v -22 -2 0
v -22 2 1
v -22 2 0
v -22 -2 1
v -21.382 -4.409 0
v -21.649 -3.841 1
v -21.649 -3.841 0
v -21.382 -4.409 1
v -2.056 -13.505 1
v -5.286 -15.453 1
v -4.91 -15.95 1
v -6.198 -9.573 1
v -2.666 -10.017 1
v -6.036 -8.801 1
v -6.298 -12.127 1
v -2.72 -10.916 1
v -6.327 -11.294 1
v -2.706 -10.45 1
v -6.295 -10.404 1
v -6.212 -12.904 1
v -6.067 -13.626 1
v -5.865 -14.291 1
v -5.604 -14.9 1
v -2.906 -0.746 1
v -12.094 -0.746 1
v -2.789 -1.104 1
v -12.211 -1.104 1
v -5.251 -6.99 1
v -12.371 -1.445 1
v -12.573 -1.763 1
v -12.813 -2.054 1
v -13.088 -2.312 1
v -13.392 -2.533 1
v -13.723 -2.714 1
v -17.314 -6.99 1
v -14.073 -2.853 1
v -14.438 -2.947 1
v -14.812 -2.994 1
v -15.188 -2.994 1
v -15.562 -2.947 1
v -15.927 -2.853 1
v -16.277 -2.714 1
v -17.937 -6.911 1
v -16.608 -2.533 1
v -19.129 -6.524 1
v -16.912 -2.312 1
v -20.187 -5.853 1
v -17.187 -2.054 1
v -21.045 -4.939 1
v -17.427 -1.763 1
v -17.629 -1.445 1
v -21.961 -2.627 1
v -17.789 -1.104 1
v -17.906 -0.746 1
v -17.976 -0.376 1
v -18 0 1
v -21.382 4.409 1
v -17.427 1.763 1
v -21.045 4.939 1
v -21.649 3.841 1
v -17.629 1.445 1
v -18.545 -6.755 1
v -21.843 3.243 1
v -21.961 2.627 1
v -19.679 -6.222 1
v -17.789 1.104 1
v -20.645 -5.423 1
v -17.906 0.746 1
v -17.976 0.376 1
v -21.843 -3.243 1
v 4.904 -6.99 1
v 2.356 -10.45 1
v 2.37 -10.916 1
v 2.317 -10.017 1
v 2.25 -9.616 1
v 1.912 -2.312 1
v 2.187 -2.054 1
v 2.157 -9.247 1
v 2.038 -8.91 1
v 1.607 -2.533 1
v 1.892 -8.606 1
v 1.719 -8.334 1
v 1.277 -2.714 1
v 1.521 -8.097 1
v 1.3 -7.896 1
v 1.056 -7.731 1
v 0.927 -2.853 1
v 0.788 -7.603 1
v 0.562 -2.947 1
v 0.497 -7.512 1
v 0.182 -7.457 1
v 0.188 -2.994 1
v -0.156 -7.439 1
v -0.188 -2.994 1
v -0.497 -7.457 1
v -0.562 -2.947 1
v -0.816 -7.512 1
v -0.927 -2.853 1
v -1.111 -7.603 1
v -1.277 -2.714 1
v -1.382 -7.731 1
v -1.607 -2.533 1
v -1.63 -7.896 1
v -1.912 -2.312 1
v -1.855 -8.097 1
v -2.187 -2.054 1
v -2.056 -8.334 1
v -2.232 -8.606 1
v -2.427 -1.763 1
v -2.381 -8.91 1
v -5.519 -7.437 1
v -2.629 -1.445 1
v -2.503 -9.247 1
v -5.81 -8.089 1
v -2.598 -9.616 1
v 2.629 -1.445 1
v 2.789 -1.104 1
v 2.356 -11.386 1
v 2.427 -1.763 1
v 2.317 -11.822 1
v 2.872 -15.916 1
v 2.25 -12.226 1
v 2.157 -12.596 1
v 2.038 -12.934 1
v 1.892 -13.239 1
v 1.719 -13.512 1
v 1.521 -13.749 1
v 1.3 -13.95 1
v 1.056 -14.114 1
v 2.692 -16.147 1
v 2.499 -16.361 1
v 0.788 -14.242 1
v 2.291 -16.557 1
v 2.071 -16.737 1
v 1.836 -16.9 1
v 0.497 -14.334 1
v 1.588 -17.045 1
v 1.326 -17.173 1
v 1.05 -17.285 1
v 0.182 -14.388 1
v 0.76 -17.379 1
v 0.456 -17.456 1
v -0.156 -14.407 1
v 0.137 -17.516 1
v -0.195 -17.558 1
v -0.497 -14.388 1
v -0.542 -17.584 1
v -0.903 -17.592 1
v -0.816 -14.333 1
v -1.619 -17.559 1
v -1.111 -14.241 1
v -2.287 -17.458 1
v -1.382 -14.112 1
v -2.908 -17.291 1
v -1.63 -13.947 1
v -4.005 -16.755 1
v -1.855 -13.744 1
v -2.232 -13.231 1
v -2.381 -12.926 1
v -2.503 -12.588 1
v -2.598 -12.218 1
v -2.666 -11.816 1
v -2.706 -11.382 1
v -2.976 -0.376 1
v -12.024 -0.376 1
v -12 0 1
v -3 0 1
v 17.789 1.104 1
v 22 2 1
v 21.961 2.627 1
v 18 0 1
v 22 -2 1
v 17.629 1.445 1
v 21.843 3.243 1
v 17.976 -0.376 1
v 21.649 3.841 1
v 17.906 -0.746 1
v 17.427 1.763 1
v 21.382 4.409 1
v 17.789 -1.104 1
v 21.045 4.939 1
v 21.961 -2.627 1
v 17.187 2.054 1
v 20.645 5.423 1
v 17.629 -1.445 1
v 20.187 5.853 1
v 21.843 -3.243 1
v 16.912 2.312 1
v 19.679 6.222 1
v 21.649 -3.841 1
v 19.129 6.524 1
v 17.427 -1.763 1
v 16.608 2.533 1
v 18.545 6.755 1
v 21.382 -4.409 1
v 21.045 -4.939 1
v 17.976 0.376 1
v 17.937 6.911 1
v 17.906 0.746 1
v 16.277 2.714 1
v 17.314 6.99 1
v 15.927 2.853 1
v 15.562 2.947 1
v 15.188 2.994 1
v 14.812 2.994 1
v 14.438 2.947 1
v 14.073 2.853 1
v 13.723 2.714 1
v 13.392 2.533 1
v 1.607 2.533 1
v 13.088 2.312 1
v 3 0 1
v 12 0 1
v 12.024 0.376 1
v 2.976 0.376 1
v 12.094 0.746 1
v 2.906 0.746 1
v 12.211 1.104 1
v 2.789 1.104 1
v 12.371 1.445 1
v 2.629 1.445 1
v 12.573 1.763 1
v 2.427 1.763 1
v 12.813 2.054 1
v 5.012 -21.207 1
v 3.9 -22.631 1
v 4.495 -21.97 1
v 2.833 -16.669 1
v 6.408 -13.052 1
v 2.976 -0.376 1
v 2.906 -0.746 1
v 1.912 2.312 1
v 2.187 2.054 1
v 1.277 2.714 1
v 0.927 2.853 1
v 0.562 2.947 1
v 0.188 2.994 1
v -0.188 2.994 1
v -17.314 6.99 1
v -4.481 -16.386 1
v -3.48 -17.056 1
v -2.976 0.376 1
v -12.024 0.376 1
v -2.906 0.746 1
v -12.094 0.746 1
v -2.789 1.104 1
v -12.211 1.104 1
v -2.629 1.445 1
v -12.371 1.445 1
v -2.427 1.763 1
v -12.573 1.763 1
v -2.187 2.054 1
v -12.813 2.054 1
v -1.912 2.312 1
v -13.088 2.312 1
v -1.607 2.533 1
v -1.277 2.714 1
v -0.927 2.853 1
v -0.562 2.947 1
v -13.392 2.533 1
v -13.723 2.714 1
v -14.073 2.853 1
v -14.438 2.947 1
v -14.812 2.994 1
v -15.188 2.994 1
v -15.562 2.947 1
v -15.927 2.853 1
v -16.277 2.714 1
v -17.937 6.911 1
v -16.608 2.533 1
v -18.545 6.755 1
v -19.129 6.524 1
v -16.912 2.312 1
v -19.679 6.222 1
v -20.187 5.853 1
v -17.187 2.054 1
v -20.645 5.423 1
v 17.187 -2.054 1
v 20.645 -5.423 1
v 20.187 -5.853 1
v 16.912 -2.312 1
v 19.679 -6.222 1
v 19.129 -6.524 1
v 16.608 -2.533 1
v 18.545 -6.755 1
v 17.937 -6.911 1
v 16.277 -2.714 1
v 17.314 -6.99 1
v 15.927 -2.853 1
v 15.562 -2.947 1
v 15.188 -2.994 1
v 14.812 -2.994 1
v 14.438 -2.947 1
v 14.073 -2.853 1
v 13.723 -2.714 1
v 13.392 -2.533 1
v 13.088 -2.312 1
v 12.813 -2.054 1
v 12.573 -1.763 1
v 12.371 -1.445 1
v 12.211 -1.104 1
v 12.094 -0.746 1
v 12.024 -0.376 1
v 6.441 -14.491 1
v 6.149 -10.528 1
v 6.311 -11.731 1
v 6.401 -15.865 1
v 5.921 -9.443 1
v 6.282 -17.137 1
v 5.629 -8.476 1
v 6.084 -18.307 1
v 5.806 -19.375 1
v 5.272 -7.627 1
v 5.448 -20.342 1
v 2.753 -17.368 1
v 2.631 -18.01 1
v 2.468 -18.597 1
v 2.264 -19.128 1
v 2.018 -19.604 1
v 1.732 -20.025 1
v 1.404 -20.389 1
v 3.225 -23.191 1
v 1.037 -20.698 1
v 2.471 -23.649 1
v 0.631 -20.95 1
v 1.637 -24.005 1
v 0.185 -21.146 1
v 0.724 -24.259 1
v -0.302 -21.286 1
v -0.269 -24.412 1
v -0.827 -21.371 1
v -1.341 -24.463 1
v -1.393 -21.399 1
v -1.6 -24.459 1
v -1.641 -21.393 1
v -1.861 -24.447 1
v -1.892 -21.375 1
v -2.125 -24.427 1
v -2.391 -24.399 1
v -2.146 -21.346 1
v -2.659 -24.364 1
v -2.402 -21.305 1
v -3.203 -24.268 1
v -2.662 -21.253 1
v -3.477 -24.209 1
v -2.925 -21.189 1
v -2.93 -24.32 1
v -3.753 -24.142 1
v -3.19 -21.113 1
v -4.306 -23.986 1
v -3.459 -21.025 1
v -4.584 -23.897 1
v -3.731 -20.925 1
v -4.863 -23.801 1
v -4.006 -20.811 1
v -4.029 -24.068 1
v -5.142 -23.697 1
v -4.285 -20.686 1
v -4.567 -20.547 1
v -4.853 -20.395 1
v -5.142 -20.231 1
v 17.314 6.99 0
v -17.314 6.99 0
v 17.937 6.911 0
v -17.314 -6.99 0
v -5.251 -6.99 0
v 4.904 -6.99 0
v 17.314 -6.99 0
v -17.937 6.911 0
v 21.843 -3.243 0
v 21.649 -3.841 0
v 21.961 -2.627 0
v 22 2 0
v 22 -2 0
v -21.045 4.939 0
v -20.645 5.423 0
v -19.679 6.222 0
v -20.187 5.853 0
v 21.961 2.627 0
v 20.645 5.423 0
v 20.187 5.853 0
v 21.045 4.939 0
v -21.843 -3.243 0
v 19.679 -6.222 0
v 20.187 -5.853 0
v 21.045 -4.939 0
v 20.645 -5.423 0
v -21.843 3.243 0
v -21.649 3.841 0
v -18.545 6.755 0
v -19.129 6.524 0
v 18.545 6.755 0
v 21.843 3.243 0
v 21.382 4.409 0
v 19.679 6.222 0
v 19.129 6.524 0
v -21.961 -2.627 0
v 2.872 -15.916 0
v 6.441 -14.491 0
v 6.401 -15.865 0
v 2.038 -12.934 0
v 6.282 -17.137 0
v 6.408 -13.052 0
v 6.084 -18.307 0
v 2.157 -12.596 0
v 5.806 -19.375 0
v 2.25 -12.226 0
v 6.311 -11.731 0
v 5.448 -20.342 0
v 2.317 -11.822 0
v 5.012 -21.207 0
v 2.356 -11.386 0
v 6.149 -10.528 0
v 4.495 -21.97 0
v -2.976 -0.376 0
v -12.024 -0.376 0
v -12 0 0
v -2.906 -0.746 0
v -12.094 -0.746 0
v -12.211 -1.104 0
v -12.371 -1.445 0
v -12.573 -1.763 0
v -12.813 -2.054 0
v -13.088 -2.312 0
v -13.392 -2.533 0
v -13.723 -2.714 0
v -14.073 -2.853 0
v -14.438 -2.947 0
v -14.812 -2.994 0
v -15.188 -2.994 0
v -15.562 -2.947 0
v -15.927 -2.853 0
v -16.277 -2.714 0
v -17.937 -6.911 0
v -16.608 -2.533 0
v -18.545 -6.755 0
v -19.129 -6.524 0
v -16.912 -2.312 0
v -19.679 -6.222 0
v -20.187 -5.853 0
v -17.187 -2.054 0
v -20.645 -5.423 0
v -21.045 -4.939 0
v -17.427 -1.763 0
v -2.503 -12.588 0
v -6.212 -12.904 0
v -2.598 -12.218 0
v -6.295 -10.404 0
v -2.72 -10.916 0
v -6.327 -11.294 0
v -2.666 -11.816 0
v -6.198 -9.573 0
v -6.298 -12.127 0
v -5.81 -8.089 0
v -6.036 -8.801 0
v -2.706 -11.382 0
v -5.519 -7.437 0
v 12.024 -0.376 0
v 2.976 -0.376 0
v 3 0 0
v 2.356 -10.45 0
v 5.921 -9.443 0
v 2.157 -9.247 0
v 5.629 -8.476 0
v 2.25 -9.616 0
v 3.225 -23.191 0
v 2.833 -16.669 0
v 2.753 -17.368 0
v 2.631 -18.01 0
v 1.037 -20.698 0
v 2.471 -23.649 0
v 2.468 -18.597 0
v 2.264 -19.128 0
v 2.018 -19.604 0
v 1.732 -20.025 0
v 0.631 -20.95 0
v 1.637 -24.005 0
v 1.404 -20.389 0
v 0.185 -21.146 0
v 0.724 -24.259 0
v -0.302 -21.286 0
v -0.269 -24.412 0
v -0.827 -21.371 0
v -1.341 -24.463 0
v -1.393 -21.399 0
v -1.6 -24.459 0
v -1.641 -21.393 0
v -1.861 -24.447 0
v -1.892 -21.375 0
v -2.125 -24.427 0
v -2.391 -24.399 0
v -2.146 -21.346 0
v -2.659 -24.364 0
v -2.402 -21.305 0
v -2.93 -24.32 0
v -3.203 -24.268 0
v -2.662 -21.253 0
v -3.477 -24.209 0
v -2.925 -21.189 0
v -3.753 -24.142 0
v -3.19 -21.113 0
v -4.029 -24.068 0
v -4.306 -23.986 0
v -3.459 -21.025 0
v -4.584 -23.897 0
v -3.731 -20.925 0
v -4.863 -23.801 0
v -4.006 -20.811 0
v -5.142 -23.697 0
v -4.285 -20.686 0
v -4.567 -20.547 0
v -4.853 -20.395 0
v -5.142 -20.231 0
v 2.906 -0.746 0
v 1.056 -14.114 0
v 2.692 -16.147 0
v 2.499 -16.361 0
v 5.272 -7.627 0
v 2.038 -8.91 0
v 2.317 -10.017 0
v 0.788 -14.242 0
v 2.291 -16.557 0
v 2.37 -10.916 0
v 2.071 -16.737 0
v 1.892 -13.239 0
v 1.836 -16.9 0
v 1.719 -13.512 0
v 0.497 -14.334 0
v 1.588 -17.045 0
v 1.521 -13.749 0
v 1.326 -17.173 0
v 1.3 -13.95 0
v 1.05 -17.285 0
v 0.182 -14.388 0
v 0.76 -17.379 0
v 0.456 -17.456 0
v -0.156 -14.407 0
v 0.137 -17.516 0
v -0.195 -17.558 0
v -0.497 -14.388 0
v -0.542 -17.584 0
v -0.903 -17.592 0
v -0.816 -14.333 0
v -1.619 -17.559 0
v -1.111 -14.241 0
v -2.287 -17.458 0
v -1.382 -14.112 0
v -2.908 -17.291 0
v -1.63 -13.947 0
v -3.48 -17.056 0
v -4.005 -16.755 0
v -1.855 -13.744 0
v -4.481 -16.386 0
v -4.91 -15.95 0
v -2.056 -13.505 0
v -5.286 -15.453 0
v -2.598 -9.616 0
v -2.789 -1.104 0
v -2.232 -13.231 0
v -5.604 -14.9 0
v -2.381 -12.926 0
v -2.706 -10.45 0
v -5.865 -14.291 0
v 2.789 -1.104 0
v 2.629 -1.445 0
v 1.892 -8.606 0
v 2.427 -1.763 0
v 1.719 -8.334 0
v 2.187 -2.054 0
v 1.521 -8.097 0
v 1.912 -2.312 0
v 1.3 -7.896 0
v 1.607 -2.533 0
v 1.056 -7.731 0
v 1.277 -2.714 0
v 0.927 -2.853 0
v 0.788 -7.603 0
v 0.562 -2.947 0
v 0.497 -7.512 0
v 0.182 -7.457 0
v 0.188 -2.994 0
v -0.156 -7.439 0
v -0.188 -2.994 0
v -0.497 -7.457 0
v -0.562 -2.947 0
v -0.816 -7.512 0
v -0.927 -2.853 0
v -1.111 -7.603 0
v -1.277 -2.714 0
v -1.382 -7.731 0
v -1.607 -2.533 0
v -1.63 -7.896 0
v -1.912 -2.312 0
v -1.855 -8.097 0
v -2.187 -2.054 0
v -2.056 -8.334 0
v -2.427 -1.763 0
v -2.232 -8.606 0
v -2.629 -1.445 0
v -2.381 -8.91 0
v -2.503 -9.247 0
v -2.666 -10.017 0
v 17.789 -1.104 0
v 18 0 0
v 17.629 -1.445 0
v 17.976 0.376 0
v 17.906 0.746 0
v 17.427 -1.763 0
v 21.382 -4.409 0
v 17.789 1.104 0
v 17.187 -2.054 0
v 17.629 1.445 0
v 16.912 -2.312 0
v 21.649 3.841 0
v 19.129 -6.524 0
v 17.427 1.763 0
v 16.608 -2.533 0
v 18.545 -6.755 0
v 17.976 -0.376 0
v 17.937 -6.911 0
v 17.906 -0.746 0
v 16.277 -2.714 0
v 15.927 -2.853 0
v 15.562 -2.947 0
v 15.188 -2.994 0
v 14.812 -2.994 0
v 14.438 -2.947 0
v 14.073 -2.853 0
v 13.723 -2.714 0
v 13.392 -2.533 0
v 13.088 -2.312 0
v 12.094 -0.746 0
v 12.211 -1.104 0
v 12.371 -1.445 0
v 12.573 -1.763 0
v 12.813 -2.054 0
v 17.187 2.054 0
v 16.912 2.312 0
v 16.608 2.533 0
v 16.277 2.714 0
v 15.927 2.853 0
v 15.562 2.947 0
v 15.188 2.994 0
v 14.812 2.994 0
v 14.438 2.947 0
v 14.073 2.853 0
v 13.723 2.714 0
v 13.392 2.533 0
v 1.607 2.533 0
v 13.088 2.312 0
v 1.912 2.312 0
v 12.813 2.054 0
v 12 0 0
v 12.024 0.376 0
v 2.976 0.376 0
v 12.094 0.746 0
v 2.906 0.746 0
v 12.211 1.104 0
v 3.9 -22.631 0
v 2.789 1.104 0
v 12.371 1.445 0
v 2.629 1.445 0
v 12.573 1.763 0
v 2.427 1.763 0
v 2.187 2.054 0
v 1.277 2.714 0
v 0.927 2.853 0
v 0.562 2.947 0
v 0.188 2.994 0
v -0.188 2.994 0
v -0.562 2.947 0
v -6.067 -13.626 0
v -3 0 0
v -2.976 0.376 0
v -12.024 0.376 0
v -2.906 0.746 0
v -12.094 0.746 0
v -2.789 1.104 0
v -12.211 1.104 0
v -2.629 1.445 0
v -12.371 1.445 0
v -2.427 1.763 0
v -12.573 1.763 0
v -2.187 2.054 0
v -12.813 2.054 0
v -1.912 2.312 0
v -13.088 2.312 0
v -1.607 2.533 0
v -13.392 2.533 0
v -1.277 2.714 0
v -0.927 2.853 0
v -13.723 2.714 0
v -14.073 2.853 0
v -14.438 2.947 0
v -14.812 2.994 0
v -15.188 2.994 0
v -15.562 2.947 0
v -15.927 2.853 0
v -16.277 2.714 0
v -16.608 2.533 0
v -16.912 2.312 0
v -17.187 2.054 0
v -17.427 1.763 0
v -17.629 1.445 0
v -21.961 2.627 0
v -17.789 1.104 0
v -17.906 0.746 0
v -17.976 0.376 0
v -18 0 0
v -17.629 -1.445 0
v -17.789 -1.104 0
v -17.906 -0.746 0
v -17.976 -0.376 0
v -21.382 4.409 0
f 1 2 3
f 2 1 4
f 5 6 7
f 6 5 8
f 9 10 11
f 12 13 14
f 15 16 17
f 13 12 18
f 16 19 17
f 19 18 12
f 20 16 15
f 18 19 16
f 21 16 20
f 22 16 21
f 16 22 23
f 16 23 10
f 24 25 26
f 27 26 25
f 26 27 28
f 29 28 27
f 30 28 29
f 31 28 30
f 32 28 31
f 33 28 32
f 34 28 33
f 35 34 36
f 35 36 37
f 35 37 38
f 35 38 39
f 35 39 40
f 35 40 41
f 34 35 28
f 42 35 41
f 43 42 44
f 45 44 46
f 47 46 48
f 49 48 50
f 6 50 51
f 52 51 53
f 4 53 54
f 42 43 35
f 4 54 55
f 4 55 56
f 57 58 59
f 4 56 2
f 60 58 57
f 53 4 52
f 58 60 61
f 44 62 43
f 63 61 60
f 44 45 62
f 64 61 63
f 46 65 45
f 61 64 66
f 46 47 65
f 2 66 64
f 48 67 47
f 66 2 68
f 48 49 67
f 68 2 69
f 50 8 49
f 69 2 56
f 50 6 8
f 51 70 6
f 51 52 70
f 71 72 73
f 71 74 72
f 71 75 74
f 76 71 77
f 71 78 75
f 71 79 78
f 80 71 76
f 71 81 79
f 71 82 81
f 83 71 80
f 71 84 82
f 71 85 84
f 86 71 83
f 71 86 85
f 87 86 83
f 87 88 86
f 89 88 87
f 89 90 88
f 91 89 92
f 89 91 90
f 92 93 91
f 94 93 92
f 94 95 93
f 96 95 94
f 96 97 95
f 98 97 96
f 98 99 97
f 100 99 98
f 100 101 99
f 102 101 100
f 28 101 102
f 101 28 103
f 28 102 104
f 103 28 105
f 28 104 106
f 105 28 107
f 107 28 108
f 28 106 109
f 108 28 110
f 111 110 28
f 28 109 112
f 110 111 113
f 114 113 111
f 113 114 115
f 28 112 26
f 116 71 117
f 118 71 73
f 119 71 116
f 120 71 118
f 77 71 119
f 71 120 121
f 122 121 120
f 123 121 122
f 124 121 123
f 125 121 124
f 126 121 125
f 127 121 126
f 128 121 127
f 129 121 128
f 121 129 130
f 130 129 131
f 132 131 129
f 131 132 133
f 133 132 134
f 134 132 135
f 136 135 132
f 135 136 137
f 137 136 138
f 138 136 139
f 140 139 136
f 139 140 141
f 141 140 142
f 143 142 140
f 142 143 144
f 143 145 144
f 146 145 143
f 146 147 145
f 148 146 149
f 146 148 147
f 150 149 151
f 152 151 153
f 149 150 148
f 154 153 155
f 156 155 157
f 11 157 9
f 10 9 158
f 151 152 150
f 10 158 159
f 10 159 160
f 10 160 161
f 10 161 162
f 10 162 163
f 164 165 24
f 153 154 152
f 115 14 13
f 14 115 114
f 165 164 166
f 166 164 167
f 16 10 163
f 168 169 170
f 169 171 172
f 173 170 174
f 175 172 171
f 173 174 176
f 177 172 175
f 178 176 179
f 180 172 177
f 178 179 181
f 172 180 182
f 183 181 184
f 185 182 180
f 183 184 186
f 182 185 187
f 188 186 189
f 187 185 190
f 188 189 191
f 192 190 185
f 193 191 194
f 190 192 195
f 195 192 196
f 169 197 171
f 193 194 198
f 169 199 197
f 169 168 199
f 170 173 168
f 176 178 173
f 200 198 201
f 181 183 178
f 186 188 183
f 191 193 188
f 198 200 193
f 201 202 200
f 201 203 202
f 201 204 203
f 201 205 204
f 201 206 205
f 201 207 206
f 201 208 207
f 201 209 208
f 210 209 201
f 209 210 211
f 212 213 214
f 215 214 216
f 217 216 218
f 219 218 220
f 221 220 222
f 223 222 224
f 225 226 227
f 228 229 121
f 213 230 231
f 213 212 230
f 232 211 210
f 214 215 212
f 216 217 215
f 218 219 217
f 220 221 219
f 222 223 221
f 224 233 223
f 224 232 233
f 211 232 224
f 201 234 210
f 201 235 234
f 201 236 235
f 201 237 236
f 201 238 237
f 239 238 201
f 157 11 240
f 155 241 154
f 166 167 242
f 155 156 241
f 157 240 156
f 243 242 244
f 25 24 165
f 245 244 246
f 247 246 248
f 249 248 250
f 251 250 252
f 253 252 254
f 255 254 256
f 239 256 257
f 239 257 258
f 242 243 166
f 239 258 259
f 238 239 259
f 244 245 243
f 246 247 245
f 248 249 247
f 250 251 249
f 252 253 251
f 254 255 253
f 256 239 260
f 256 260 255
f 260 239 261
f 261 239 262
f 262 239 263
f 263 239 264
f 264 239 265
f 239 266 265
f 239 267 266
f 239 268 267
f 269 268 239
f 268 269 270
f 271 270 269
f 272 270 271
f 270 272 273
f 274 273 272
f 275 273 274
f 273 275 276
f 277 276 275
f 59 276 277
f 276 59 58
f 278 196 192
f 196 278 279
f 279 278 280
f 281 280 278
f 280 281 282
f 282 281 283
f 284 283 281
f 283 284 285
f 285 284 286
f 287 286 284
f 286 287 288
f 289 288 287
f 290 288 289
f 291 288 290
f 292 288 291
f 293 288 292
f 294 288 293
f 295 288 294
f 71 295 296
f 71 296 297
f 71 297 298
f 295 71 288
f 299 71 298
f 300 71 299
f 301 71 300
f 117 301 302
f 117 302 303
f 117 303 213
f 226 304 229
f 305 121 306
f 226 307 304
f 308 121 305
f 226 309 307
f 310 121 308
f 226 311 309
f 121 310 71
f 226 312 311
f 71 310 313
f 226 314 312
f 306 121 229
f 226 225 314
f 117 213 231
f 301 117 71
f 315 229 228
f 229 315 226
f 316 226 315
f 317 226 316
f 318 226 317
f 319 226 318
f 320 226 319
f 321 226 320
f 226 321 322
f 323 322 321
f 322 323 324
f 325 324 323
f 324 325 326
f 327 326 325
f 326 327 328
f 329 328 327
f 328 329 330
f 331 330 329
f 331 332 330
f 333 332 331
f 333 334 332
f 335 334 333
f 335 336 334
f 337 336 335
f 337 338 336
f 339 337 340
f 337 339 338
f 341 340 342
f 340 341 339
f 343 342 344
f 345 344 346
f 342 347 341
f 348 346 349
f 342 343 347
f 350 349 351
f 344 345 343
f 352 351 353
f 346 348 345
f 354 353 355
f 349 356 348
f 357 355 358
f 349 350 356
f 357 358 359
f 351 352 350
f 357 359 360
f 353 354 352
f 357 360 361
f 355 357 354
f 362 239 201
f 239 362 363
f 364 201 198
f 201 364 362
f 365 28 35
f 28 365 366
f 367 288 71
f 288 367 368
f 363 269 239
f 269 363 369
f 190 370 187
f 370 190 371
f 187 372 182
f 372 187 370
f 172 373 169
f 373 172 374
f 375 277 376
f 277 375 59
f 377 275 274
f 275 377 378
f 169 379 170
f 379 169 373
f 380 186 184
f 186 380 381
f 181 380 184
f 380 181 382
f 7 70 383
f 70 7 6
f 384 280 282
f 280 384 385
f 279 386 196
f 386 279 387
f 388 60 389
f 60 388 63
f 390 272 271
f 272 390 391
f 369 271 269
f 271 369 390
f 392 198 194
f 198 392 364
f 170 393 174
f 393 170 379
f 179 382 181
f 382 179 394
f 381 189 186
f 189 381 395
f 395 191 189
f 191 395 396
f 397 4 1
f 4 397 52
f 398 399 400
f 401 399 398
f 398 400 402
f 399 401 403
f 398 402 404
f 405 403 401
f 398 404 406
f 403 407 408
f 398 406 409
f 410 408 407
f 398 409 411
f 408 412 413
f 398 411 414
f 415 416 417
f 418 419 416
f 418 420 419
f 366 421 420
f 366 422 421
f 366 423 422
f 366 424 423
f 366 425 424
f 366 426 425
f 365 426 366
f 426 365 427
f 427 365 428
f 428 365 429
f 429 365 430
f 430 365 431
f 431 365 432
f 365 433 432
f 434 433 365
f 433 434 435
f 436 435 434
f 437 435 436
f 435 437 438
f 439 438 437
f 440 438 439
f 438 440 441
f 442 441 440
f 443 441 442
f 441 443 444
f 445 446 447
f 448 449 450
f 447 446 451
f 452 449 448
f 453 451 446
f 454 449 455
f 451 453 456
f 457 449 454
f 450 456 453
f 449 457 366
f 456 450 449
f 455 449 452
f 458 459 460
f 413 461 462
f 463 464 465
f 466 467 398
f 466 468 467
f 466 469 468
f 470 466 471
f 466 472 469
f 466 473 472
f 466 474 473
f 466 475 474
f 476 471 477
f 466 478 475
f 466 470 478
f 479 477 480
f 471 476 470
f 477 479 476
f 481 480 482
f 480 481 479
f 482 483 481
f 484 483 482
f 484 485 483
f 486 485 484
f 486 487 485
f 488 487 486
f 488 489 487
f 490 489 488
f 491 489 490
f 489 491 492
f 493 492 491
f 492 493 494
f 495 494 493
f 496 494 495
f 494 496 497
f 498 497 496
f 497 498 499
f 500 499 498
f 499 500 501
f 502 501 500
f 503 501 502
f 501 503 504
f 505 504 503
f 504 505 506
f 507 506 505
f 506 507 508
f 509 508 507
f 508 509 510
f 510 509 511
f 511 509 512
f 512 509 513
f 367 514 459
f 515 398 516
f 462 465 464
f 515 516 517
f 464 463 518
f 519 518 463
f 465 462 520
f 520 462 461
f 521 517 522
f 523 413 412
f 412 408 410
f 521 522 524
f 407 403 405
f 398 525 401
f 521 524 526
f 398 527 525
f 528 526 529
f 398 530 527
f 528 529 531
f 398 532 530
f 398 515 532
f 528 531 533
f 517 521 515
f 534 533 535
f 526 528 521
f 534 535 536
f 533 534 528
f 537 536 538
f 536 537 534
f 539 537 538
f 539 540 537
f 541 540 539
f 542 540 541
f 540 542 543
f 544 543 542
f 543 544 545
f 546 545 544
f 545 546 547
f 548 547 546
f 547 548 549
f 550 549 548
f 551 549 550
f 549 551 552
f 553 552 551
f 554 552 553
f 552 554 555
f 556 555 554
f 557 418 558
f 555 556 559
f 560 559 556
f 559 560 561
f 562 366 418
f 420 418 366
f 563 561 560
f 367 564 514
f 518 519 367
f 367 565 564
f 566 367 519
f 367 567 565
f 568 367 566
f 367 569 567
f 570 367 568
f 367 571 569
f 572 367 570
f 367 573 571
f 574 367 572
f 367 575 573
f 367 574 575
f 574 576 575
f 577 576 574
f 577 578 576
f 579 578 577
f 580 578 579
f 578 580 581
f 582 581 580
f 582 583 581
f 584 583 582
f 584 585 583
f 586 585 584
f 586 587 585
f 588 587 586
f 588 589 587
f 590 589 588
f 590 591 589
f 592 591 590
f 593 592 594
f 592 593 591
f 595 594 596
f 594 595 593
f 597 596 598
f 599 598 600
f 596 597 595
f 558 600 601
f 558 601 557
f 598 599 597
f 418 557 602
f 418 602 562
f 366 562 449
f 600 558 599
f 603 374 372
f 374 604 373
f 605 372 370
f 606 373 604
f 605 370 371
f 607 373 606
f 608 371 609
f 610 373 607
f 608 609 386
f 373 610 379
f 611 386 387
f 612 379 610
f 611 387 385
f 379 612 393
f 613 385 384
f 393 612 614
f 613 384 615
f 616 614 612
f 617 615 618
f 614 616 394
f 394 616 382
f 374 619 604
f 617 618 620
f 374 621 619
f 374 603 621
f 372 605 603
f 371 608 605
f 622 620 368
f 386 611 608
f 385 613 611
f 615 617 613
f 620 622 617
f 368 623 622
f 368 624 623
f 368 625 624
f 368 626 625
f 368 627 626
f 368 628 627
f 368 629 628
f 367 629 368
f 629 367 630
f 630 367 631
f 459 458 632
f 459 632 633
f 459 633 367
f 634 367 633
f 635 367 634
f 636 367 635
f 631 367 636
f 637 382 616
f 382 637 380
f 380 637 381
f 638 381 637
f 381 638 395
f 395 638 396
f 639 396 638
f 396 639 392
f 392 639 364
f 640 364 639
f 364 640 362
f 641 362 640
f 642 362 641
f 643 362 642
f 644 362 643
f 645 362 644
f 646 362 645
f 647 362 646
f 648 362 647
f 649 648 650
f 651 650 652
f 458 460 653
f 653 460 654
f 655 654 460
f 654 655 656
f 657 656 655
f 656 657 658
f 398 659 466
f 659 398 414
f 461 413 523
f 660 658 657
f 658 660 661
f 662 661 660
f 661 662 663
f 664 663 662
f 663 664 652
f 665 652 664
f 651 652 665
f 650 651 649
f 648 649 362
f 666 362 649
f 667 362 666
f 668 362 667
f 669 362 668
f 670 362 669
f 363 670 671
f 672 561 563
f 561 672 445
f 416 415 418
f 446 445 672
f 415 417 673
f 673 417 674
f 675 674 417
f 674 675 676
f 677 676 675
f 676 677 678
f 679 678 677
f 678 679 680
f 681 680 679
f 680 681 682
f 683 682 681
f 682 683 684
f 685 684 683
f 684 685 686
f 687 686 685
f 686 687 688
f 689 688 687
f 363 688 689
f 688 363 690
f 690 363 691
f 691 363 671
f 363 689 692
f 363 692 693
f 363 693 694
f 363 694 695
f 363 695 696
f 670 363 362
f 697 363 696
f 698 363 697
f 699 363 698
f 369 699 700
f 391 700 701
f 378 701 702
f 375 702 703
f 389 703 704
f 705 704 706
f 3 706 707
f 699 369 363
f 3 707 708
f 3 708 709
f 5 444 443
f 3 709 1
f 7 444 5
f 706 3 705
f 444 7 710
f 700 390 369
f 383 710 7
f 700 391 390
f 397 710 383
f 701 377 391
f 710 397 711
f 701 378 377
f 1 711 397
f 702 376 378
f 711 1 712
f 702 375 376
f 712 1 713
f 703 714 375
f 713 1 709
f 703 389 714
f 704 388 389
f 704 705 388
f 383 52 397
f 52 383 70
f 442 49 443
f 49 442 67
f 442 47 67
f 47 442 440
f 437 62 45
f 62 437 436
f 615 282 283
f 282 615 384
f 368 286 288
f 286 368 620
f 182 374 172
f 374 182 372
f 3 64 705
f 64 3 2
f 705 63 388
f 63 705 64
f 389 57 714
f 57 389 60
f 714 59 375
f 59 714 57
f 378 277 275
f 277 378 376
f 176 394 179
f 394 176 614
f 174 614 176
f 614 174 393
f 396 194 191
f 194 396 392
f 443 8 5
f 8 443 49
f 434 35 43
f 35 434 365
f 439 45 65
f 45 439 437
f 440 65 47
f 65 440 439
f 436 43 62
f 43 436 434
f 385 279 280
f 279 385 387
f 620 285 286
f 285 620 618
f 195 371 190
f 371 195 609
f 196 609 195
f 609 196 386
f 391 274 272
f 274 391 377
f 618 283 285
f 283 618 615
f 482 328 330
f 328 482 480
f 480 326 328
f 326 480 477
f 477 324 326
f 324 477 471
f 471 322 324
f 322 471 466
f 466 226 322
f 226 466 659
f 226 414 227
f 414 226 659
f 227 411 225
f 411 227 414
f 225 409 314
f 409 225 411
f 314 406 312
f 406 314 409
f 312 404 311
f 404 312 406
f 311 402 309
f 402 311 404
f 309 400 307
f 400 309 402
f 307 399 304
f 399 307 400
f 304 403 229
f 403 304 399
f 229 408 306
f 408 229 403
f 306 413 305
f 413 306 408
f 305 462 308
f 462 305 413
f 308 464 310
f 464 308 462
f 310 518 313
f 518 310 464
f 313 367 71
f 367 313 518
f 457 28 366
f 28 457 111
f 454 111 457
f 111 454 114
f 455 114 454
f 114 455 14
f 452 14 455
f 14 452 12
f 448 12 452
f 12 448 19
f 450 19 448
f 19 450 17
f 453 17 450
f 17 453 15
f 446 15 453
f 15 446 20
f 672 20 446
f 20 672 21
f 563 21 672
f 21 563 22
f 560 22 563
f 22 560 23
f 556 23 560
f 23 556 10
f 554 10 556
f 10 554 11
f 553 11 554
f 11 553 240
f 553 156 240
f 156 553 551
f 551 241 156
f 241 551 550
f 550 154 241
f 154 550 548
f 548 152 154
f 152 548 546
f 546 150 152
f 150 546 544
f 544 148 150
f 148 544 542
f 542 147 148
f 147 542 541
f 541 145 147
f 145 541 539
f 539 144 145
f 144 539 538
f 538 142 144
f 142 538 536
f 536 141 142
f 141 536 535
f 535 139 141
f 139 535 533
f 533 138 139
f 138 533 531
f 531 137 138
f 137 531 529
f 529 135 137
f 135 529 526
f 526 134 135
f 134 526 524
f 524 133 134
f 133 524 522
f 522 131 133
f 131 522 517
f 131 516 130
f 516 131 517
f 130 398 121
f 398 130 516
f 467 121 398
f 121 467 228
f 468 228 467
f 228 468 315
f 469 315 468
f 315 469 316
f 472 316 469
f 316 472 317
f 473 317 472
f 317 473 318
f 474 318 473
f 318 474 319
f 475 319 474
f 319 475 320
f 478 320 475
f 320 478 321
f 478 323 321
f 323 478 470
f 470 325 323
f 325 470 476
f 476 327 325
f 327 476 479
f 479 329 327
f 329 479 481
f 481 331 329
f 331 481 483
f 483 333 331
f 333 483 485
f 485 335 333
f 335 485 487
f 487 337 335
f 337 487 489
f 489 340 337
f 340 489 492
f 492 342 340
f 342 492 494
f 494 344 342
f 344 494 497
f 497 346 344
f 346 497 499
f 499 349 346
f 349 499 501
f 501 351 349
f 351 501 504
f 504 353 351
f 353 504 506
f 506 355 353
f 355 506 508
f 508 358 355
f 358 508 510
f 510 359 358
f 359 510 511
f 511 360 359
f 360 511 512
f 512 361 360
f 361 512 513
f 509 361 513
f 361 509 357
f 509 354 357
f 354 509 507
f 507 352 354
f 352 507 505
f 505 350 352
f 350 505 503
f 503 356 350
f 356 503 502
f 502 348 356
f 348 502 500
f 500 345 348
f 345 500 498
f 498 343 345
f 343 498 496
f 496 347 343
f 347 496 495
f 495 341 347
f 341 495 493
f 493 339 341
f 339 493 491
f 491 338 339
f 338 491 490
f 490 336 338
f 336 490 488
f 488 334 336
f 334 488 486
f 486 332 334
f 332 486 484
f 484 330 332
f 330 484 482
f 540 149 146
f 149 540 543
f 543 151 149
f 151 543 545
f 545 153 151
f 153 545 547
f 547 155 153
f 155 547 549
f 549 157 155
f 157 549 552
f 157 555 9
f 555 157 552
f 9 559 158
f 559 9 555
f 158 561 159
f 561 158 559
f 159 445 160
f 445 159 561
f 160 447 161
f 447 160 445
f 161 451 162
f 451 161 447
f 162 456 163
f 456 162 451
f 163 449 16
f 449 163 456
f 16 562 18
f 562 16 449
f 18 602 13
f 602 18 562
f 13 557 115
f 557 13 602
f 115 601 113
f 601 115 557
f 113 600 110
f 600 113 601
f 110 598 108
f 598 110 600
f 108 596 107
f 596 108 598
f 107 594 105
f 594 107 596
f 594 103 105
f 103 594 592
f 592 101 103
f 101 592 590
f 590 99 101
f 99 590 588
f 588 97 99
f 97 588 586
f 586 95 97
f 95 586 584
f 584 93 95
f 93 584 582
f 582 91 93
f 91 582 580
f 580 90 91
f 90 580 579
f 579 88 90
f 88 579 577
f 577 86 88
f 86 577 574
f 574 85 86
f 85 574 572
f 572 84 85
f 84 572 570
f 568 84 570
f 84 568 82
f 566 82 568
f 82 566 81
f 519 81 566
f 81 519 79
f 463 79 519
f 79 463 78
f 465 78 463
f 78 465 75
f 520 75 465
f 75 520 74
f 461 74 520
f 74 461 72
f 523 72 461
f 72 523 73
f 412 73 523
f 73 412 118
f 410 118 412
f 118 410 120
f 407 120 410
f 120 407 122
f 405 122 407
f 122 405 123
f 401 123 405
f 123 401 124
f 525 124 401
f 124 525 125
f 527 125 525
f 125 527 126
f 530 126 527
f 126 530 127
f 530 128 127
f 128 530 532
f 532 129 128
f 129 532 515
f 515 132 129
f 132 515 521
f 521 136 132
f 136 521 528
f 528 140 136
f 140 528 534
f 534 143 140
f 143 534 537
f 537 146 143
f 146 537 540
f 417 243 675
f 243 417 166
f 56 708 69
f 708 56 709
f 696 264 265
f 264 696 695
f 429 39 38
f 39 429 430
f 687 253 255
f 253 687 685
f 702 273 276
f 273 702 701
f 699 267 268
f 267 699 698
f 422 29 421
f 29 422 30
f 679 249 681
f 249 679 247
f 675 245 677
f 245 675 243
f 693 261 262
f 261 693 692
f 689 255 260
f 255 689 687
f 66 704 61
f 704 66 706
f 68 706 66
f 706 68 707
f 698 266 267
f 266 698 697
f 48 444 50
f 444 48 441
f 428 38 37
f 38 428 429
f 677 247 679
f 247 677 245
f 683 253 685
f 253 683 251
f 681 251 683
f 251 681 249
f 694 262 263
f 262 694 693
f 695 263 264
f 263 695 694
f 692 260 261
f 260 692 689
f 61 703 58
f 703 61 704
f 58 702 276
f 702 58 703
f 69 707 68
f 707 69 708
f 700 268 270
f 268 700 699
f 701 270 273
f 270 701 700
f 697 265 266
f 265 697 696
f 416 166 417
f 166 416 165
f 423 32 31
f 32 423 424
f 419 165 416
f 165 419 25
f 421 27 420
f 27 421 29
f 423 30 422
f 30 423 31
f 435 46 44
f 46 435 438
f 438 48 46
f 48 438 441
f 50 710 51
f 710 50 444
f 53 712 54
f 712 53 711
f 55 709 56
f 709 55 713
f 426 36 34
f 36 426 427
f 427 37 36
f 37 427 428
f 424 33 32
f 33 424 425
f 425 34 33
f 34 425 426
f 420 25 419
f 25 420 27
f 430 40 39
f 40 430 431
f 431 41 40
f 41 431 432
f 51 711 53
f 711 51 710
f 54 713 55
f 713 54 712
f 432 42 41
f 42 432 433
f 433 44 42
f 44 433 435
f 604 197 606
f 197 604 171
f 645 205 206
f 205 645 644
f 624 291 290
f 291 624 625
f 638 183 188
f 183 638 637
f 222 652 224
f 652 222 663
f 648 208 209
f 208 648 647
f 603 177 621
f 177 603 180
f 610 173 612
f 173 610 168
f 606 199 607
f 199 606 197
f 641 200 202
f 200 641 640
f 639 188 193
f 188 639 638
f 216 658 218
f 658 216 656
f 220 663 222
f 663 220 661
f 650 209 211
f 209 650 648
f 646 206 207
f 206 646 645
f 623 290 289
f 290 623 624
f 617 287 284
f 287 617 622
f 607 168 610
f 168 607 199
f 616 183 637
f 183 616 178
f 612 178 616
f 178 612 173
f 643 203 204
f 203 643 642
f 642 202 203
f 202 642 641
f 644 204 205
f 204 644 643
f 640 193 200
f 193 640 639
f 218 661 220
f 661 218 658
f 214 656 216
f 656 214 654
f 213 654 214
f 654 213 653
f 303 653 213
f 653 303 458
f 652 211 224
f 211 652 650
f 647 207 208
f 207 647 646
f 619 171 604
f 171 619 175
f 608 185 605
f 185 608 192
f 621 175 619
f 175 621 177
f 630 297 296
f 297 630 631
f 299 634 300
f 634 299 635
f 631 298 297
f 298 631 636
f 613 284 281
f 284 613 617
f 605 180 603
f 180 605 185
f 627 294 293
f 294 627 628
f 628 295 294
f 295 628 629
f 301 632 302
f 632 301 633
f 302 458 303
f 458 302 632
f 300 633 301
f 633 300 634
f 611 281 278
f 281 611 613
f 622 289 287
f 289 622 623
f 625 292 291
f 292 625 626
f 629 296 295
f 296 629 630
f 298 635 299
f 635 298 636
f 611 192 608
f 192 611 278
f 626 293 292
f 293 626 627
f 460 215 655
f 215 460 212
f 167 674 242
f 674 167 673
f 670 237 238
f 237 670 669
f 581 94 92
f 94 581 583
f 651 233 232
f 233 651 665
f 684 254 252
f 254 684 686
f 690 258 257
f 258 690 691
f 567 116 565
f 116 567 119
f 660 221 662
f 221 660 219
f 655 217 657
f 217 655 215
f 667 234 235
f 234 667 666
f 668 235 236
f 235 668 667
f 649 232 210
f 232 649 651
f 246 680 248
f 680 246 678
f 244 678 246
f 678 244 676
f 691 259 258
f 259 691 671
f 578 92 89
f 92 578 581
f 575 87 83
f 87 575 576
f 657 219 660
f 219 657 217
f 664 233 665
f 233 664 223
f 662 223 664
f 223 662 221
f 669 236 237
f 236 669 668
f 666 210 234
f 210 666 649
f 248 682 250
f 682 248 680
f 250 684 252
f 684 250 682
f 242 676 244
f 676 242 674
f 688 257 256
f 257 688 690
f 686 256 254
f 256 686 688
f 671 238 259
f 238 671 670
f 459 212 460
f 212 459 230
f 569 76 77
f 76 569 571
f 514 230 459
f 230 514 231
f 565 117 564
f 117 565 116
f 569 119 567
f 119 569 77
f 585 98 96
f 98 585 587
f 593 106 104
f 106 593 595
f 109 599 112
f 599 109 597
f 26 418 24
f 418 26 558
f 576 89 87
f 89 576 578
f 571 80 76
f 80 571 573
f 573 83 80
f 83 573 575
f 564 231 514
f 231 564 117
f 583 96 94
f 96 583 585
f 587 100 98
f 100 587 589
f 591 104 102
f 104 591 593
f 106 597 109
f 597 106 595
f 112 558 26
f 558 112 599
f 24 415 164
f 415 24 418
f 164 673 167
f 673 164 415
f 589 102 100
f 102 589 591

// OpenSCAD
$fn = 50;


difference() {
	union() {
		translate(v = [0, 0, 0]) {
			rotate(a = [0, 0, 0]) {
				hull() {
					translate(v = [-17.0000000000, 2.0000000000, 0]) {
						rotate(a = [0, 0, 0]) {
							translate(v = [0, 0, 0]) {
								rotate(a = [0, 0, 0]) {
									cylinder(h = 1, r = 5);
								}
							}
						}
					}
					translate(v = [17.0000000000, 2.0000000000, 0]) {
						rotate(a = [0, 0, 0]) {
							translate(v = [0, 0, 0]) {
								rotate(a = [0, 0, 0]) {
									cylinder(h = 1, r = 5);
								}
							}
						}
					}
					translate(v = [-17.0000000000, -2.0000000000, 0]) {
						rotate(a = [0, 0, 0]) {
							translate(v = [0, 0, 0]) {
								rotate(a = [0, 0, 0]) {
									cylinder(h = 1, r = 5);
								}
							}
						}
					}
					translate(v = [17.0000000000, -2.0000000000, 0]) {
						rotate(a = [0, 0, 0]) {
							translate(v = [0, 0, 0]) {
								rotate(a = [0, 0, 0]) {
									cylinder(h = 1, r = 5);
								}
							}
						}
					}
				}
			}
		}
		translate(v = [0, -5, 0]) {
			rotate(a = [0, 0, 0]) {
				linear_extrude(height = 1) {
					text(font = "DejaVu Sans Mono:style=Bold", halign = "center", size = 19.0000000000, text = "9", valign = "top");
				}
			}
		}
	}
	union() {
		translate(v = [-15.0000000000, 0.0000000000, -125.0000000000]) {
			rotate(a = [0, 0, 0]) {
				cylinder(h = 250, r = 3.0000000000);
			}
		}
		translate(v = [15.0000000000, 0.0000000000, -125.0000000000]) {
			rotate(a = [0, 0, 0]) {
				cylinder(h = 250, r = 3.0000000000);
			}
		}
		translate(v = [15.0000000000, 0.0000000000, -125.0000000000]) {
			rotate(a = [0, 0, 0]) {
				cylinder(h = 250, r = 3.0000000000);
			}
		}
		translate(v = [0, 0, -125.0000000000]) {
			rotate(a = [0, 0, 0]) {
				cylinder(h = 250, r = 3.0000000000);
			}
		}
	}
}
